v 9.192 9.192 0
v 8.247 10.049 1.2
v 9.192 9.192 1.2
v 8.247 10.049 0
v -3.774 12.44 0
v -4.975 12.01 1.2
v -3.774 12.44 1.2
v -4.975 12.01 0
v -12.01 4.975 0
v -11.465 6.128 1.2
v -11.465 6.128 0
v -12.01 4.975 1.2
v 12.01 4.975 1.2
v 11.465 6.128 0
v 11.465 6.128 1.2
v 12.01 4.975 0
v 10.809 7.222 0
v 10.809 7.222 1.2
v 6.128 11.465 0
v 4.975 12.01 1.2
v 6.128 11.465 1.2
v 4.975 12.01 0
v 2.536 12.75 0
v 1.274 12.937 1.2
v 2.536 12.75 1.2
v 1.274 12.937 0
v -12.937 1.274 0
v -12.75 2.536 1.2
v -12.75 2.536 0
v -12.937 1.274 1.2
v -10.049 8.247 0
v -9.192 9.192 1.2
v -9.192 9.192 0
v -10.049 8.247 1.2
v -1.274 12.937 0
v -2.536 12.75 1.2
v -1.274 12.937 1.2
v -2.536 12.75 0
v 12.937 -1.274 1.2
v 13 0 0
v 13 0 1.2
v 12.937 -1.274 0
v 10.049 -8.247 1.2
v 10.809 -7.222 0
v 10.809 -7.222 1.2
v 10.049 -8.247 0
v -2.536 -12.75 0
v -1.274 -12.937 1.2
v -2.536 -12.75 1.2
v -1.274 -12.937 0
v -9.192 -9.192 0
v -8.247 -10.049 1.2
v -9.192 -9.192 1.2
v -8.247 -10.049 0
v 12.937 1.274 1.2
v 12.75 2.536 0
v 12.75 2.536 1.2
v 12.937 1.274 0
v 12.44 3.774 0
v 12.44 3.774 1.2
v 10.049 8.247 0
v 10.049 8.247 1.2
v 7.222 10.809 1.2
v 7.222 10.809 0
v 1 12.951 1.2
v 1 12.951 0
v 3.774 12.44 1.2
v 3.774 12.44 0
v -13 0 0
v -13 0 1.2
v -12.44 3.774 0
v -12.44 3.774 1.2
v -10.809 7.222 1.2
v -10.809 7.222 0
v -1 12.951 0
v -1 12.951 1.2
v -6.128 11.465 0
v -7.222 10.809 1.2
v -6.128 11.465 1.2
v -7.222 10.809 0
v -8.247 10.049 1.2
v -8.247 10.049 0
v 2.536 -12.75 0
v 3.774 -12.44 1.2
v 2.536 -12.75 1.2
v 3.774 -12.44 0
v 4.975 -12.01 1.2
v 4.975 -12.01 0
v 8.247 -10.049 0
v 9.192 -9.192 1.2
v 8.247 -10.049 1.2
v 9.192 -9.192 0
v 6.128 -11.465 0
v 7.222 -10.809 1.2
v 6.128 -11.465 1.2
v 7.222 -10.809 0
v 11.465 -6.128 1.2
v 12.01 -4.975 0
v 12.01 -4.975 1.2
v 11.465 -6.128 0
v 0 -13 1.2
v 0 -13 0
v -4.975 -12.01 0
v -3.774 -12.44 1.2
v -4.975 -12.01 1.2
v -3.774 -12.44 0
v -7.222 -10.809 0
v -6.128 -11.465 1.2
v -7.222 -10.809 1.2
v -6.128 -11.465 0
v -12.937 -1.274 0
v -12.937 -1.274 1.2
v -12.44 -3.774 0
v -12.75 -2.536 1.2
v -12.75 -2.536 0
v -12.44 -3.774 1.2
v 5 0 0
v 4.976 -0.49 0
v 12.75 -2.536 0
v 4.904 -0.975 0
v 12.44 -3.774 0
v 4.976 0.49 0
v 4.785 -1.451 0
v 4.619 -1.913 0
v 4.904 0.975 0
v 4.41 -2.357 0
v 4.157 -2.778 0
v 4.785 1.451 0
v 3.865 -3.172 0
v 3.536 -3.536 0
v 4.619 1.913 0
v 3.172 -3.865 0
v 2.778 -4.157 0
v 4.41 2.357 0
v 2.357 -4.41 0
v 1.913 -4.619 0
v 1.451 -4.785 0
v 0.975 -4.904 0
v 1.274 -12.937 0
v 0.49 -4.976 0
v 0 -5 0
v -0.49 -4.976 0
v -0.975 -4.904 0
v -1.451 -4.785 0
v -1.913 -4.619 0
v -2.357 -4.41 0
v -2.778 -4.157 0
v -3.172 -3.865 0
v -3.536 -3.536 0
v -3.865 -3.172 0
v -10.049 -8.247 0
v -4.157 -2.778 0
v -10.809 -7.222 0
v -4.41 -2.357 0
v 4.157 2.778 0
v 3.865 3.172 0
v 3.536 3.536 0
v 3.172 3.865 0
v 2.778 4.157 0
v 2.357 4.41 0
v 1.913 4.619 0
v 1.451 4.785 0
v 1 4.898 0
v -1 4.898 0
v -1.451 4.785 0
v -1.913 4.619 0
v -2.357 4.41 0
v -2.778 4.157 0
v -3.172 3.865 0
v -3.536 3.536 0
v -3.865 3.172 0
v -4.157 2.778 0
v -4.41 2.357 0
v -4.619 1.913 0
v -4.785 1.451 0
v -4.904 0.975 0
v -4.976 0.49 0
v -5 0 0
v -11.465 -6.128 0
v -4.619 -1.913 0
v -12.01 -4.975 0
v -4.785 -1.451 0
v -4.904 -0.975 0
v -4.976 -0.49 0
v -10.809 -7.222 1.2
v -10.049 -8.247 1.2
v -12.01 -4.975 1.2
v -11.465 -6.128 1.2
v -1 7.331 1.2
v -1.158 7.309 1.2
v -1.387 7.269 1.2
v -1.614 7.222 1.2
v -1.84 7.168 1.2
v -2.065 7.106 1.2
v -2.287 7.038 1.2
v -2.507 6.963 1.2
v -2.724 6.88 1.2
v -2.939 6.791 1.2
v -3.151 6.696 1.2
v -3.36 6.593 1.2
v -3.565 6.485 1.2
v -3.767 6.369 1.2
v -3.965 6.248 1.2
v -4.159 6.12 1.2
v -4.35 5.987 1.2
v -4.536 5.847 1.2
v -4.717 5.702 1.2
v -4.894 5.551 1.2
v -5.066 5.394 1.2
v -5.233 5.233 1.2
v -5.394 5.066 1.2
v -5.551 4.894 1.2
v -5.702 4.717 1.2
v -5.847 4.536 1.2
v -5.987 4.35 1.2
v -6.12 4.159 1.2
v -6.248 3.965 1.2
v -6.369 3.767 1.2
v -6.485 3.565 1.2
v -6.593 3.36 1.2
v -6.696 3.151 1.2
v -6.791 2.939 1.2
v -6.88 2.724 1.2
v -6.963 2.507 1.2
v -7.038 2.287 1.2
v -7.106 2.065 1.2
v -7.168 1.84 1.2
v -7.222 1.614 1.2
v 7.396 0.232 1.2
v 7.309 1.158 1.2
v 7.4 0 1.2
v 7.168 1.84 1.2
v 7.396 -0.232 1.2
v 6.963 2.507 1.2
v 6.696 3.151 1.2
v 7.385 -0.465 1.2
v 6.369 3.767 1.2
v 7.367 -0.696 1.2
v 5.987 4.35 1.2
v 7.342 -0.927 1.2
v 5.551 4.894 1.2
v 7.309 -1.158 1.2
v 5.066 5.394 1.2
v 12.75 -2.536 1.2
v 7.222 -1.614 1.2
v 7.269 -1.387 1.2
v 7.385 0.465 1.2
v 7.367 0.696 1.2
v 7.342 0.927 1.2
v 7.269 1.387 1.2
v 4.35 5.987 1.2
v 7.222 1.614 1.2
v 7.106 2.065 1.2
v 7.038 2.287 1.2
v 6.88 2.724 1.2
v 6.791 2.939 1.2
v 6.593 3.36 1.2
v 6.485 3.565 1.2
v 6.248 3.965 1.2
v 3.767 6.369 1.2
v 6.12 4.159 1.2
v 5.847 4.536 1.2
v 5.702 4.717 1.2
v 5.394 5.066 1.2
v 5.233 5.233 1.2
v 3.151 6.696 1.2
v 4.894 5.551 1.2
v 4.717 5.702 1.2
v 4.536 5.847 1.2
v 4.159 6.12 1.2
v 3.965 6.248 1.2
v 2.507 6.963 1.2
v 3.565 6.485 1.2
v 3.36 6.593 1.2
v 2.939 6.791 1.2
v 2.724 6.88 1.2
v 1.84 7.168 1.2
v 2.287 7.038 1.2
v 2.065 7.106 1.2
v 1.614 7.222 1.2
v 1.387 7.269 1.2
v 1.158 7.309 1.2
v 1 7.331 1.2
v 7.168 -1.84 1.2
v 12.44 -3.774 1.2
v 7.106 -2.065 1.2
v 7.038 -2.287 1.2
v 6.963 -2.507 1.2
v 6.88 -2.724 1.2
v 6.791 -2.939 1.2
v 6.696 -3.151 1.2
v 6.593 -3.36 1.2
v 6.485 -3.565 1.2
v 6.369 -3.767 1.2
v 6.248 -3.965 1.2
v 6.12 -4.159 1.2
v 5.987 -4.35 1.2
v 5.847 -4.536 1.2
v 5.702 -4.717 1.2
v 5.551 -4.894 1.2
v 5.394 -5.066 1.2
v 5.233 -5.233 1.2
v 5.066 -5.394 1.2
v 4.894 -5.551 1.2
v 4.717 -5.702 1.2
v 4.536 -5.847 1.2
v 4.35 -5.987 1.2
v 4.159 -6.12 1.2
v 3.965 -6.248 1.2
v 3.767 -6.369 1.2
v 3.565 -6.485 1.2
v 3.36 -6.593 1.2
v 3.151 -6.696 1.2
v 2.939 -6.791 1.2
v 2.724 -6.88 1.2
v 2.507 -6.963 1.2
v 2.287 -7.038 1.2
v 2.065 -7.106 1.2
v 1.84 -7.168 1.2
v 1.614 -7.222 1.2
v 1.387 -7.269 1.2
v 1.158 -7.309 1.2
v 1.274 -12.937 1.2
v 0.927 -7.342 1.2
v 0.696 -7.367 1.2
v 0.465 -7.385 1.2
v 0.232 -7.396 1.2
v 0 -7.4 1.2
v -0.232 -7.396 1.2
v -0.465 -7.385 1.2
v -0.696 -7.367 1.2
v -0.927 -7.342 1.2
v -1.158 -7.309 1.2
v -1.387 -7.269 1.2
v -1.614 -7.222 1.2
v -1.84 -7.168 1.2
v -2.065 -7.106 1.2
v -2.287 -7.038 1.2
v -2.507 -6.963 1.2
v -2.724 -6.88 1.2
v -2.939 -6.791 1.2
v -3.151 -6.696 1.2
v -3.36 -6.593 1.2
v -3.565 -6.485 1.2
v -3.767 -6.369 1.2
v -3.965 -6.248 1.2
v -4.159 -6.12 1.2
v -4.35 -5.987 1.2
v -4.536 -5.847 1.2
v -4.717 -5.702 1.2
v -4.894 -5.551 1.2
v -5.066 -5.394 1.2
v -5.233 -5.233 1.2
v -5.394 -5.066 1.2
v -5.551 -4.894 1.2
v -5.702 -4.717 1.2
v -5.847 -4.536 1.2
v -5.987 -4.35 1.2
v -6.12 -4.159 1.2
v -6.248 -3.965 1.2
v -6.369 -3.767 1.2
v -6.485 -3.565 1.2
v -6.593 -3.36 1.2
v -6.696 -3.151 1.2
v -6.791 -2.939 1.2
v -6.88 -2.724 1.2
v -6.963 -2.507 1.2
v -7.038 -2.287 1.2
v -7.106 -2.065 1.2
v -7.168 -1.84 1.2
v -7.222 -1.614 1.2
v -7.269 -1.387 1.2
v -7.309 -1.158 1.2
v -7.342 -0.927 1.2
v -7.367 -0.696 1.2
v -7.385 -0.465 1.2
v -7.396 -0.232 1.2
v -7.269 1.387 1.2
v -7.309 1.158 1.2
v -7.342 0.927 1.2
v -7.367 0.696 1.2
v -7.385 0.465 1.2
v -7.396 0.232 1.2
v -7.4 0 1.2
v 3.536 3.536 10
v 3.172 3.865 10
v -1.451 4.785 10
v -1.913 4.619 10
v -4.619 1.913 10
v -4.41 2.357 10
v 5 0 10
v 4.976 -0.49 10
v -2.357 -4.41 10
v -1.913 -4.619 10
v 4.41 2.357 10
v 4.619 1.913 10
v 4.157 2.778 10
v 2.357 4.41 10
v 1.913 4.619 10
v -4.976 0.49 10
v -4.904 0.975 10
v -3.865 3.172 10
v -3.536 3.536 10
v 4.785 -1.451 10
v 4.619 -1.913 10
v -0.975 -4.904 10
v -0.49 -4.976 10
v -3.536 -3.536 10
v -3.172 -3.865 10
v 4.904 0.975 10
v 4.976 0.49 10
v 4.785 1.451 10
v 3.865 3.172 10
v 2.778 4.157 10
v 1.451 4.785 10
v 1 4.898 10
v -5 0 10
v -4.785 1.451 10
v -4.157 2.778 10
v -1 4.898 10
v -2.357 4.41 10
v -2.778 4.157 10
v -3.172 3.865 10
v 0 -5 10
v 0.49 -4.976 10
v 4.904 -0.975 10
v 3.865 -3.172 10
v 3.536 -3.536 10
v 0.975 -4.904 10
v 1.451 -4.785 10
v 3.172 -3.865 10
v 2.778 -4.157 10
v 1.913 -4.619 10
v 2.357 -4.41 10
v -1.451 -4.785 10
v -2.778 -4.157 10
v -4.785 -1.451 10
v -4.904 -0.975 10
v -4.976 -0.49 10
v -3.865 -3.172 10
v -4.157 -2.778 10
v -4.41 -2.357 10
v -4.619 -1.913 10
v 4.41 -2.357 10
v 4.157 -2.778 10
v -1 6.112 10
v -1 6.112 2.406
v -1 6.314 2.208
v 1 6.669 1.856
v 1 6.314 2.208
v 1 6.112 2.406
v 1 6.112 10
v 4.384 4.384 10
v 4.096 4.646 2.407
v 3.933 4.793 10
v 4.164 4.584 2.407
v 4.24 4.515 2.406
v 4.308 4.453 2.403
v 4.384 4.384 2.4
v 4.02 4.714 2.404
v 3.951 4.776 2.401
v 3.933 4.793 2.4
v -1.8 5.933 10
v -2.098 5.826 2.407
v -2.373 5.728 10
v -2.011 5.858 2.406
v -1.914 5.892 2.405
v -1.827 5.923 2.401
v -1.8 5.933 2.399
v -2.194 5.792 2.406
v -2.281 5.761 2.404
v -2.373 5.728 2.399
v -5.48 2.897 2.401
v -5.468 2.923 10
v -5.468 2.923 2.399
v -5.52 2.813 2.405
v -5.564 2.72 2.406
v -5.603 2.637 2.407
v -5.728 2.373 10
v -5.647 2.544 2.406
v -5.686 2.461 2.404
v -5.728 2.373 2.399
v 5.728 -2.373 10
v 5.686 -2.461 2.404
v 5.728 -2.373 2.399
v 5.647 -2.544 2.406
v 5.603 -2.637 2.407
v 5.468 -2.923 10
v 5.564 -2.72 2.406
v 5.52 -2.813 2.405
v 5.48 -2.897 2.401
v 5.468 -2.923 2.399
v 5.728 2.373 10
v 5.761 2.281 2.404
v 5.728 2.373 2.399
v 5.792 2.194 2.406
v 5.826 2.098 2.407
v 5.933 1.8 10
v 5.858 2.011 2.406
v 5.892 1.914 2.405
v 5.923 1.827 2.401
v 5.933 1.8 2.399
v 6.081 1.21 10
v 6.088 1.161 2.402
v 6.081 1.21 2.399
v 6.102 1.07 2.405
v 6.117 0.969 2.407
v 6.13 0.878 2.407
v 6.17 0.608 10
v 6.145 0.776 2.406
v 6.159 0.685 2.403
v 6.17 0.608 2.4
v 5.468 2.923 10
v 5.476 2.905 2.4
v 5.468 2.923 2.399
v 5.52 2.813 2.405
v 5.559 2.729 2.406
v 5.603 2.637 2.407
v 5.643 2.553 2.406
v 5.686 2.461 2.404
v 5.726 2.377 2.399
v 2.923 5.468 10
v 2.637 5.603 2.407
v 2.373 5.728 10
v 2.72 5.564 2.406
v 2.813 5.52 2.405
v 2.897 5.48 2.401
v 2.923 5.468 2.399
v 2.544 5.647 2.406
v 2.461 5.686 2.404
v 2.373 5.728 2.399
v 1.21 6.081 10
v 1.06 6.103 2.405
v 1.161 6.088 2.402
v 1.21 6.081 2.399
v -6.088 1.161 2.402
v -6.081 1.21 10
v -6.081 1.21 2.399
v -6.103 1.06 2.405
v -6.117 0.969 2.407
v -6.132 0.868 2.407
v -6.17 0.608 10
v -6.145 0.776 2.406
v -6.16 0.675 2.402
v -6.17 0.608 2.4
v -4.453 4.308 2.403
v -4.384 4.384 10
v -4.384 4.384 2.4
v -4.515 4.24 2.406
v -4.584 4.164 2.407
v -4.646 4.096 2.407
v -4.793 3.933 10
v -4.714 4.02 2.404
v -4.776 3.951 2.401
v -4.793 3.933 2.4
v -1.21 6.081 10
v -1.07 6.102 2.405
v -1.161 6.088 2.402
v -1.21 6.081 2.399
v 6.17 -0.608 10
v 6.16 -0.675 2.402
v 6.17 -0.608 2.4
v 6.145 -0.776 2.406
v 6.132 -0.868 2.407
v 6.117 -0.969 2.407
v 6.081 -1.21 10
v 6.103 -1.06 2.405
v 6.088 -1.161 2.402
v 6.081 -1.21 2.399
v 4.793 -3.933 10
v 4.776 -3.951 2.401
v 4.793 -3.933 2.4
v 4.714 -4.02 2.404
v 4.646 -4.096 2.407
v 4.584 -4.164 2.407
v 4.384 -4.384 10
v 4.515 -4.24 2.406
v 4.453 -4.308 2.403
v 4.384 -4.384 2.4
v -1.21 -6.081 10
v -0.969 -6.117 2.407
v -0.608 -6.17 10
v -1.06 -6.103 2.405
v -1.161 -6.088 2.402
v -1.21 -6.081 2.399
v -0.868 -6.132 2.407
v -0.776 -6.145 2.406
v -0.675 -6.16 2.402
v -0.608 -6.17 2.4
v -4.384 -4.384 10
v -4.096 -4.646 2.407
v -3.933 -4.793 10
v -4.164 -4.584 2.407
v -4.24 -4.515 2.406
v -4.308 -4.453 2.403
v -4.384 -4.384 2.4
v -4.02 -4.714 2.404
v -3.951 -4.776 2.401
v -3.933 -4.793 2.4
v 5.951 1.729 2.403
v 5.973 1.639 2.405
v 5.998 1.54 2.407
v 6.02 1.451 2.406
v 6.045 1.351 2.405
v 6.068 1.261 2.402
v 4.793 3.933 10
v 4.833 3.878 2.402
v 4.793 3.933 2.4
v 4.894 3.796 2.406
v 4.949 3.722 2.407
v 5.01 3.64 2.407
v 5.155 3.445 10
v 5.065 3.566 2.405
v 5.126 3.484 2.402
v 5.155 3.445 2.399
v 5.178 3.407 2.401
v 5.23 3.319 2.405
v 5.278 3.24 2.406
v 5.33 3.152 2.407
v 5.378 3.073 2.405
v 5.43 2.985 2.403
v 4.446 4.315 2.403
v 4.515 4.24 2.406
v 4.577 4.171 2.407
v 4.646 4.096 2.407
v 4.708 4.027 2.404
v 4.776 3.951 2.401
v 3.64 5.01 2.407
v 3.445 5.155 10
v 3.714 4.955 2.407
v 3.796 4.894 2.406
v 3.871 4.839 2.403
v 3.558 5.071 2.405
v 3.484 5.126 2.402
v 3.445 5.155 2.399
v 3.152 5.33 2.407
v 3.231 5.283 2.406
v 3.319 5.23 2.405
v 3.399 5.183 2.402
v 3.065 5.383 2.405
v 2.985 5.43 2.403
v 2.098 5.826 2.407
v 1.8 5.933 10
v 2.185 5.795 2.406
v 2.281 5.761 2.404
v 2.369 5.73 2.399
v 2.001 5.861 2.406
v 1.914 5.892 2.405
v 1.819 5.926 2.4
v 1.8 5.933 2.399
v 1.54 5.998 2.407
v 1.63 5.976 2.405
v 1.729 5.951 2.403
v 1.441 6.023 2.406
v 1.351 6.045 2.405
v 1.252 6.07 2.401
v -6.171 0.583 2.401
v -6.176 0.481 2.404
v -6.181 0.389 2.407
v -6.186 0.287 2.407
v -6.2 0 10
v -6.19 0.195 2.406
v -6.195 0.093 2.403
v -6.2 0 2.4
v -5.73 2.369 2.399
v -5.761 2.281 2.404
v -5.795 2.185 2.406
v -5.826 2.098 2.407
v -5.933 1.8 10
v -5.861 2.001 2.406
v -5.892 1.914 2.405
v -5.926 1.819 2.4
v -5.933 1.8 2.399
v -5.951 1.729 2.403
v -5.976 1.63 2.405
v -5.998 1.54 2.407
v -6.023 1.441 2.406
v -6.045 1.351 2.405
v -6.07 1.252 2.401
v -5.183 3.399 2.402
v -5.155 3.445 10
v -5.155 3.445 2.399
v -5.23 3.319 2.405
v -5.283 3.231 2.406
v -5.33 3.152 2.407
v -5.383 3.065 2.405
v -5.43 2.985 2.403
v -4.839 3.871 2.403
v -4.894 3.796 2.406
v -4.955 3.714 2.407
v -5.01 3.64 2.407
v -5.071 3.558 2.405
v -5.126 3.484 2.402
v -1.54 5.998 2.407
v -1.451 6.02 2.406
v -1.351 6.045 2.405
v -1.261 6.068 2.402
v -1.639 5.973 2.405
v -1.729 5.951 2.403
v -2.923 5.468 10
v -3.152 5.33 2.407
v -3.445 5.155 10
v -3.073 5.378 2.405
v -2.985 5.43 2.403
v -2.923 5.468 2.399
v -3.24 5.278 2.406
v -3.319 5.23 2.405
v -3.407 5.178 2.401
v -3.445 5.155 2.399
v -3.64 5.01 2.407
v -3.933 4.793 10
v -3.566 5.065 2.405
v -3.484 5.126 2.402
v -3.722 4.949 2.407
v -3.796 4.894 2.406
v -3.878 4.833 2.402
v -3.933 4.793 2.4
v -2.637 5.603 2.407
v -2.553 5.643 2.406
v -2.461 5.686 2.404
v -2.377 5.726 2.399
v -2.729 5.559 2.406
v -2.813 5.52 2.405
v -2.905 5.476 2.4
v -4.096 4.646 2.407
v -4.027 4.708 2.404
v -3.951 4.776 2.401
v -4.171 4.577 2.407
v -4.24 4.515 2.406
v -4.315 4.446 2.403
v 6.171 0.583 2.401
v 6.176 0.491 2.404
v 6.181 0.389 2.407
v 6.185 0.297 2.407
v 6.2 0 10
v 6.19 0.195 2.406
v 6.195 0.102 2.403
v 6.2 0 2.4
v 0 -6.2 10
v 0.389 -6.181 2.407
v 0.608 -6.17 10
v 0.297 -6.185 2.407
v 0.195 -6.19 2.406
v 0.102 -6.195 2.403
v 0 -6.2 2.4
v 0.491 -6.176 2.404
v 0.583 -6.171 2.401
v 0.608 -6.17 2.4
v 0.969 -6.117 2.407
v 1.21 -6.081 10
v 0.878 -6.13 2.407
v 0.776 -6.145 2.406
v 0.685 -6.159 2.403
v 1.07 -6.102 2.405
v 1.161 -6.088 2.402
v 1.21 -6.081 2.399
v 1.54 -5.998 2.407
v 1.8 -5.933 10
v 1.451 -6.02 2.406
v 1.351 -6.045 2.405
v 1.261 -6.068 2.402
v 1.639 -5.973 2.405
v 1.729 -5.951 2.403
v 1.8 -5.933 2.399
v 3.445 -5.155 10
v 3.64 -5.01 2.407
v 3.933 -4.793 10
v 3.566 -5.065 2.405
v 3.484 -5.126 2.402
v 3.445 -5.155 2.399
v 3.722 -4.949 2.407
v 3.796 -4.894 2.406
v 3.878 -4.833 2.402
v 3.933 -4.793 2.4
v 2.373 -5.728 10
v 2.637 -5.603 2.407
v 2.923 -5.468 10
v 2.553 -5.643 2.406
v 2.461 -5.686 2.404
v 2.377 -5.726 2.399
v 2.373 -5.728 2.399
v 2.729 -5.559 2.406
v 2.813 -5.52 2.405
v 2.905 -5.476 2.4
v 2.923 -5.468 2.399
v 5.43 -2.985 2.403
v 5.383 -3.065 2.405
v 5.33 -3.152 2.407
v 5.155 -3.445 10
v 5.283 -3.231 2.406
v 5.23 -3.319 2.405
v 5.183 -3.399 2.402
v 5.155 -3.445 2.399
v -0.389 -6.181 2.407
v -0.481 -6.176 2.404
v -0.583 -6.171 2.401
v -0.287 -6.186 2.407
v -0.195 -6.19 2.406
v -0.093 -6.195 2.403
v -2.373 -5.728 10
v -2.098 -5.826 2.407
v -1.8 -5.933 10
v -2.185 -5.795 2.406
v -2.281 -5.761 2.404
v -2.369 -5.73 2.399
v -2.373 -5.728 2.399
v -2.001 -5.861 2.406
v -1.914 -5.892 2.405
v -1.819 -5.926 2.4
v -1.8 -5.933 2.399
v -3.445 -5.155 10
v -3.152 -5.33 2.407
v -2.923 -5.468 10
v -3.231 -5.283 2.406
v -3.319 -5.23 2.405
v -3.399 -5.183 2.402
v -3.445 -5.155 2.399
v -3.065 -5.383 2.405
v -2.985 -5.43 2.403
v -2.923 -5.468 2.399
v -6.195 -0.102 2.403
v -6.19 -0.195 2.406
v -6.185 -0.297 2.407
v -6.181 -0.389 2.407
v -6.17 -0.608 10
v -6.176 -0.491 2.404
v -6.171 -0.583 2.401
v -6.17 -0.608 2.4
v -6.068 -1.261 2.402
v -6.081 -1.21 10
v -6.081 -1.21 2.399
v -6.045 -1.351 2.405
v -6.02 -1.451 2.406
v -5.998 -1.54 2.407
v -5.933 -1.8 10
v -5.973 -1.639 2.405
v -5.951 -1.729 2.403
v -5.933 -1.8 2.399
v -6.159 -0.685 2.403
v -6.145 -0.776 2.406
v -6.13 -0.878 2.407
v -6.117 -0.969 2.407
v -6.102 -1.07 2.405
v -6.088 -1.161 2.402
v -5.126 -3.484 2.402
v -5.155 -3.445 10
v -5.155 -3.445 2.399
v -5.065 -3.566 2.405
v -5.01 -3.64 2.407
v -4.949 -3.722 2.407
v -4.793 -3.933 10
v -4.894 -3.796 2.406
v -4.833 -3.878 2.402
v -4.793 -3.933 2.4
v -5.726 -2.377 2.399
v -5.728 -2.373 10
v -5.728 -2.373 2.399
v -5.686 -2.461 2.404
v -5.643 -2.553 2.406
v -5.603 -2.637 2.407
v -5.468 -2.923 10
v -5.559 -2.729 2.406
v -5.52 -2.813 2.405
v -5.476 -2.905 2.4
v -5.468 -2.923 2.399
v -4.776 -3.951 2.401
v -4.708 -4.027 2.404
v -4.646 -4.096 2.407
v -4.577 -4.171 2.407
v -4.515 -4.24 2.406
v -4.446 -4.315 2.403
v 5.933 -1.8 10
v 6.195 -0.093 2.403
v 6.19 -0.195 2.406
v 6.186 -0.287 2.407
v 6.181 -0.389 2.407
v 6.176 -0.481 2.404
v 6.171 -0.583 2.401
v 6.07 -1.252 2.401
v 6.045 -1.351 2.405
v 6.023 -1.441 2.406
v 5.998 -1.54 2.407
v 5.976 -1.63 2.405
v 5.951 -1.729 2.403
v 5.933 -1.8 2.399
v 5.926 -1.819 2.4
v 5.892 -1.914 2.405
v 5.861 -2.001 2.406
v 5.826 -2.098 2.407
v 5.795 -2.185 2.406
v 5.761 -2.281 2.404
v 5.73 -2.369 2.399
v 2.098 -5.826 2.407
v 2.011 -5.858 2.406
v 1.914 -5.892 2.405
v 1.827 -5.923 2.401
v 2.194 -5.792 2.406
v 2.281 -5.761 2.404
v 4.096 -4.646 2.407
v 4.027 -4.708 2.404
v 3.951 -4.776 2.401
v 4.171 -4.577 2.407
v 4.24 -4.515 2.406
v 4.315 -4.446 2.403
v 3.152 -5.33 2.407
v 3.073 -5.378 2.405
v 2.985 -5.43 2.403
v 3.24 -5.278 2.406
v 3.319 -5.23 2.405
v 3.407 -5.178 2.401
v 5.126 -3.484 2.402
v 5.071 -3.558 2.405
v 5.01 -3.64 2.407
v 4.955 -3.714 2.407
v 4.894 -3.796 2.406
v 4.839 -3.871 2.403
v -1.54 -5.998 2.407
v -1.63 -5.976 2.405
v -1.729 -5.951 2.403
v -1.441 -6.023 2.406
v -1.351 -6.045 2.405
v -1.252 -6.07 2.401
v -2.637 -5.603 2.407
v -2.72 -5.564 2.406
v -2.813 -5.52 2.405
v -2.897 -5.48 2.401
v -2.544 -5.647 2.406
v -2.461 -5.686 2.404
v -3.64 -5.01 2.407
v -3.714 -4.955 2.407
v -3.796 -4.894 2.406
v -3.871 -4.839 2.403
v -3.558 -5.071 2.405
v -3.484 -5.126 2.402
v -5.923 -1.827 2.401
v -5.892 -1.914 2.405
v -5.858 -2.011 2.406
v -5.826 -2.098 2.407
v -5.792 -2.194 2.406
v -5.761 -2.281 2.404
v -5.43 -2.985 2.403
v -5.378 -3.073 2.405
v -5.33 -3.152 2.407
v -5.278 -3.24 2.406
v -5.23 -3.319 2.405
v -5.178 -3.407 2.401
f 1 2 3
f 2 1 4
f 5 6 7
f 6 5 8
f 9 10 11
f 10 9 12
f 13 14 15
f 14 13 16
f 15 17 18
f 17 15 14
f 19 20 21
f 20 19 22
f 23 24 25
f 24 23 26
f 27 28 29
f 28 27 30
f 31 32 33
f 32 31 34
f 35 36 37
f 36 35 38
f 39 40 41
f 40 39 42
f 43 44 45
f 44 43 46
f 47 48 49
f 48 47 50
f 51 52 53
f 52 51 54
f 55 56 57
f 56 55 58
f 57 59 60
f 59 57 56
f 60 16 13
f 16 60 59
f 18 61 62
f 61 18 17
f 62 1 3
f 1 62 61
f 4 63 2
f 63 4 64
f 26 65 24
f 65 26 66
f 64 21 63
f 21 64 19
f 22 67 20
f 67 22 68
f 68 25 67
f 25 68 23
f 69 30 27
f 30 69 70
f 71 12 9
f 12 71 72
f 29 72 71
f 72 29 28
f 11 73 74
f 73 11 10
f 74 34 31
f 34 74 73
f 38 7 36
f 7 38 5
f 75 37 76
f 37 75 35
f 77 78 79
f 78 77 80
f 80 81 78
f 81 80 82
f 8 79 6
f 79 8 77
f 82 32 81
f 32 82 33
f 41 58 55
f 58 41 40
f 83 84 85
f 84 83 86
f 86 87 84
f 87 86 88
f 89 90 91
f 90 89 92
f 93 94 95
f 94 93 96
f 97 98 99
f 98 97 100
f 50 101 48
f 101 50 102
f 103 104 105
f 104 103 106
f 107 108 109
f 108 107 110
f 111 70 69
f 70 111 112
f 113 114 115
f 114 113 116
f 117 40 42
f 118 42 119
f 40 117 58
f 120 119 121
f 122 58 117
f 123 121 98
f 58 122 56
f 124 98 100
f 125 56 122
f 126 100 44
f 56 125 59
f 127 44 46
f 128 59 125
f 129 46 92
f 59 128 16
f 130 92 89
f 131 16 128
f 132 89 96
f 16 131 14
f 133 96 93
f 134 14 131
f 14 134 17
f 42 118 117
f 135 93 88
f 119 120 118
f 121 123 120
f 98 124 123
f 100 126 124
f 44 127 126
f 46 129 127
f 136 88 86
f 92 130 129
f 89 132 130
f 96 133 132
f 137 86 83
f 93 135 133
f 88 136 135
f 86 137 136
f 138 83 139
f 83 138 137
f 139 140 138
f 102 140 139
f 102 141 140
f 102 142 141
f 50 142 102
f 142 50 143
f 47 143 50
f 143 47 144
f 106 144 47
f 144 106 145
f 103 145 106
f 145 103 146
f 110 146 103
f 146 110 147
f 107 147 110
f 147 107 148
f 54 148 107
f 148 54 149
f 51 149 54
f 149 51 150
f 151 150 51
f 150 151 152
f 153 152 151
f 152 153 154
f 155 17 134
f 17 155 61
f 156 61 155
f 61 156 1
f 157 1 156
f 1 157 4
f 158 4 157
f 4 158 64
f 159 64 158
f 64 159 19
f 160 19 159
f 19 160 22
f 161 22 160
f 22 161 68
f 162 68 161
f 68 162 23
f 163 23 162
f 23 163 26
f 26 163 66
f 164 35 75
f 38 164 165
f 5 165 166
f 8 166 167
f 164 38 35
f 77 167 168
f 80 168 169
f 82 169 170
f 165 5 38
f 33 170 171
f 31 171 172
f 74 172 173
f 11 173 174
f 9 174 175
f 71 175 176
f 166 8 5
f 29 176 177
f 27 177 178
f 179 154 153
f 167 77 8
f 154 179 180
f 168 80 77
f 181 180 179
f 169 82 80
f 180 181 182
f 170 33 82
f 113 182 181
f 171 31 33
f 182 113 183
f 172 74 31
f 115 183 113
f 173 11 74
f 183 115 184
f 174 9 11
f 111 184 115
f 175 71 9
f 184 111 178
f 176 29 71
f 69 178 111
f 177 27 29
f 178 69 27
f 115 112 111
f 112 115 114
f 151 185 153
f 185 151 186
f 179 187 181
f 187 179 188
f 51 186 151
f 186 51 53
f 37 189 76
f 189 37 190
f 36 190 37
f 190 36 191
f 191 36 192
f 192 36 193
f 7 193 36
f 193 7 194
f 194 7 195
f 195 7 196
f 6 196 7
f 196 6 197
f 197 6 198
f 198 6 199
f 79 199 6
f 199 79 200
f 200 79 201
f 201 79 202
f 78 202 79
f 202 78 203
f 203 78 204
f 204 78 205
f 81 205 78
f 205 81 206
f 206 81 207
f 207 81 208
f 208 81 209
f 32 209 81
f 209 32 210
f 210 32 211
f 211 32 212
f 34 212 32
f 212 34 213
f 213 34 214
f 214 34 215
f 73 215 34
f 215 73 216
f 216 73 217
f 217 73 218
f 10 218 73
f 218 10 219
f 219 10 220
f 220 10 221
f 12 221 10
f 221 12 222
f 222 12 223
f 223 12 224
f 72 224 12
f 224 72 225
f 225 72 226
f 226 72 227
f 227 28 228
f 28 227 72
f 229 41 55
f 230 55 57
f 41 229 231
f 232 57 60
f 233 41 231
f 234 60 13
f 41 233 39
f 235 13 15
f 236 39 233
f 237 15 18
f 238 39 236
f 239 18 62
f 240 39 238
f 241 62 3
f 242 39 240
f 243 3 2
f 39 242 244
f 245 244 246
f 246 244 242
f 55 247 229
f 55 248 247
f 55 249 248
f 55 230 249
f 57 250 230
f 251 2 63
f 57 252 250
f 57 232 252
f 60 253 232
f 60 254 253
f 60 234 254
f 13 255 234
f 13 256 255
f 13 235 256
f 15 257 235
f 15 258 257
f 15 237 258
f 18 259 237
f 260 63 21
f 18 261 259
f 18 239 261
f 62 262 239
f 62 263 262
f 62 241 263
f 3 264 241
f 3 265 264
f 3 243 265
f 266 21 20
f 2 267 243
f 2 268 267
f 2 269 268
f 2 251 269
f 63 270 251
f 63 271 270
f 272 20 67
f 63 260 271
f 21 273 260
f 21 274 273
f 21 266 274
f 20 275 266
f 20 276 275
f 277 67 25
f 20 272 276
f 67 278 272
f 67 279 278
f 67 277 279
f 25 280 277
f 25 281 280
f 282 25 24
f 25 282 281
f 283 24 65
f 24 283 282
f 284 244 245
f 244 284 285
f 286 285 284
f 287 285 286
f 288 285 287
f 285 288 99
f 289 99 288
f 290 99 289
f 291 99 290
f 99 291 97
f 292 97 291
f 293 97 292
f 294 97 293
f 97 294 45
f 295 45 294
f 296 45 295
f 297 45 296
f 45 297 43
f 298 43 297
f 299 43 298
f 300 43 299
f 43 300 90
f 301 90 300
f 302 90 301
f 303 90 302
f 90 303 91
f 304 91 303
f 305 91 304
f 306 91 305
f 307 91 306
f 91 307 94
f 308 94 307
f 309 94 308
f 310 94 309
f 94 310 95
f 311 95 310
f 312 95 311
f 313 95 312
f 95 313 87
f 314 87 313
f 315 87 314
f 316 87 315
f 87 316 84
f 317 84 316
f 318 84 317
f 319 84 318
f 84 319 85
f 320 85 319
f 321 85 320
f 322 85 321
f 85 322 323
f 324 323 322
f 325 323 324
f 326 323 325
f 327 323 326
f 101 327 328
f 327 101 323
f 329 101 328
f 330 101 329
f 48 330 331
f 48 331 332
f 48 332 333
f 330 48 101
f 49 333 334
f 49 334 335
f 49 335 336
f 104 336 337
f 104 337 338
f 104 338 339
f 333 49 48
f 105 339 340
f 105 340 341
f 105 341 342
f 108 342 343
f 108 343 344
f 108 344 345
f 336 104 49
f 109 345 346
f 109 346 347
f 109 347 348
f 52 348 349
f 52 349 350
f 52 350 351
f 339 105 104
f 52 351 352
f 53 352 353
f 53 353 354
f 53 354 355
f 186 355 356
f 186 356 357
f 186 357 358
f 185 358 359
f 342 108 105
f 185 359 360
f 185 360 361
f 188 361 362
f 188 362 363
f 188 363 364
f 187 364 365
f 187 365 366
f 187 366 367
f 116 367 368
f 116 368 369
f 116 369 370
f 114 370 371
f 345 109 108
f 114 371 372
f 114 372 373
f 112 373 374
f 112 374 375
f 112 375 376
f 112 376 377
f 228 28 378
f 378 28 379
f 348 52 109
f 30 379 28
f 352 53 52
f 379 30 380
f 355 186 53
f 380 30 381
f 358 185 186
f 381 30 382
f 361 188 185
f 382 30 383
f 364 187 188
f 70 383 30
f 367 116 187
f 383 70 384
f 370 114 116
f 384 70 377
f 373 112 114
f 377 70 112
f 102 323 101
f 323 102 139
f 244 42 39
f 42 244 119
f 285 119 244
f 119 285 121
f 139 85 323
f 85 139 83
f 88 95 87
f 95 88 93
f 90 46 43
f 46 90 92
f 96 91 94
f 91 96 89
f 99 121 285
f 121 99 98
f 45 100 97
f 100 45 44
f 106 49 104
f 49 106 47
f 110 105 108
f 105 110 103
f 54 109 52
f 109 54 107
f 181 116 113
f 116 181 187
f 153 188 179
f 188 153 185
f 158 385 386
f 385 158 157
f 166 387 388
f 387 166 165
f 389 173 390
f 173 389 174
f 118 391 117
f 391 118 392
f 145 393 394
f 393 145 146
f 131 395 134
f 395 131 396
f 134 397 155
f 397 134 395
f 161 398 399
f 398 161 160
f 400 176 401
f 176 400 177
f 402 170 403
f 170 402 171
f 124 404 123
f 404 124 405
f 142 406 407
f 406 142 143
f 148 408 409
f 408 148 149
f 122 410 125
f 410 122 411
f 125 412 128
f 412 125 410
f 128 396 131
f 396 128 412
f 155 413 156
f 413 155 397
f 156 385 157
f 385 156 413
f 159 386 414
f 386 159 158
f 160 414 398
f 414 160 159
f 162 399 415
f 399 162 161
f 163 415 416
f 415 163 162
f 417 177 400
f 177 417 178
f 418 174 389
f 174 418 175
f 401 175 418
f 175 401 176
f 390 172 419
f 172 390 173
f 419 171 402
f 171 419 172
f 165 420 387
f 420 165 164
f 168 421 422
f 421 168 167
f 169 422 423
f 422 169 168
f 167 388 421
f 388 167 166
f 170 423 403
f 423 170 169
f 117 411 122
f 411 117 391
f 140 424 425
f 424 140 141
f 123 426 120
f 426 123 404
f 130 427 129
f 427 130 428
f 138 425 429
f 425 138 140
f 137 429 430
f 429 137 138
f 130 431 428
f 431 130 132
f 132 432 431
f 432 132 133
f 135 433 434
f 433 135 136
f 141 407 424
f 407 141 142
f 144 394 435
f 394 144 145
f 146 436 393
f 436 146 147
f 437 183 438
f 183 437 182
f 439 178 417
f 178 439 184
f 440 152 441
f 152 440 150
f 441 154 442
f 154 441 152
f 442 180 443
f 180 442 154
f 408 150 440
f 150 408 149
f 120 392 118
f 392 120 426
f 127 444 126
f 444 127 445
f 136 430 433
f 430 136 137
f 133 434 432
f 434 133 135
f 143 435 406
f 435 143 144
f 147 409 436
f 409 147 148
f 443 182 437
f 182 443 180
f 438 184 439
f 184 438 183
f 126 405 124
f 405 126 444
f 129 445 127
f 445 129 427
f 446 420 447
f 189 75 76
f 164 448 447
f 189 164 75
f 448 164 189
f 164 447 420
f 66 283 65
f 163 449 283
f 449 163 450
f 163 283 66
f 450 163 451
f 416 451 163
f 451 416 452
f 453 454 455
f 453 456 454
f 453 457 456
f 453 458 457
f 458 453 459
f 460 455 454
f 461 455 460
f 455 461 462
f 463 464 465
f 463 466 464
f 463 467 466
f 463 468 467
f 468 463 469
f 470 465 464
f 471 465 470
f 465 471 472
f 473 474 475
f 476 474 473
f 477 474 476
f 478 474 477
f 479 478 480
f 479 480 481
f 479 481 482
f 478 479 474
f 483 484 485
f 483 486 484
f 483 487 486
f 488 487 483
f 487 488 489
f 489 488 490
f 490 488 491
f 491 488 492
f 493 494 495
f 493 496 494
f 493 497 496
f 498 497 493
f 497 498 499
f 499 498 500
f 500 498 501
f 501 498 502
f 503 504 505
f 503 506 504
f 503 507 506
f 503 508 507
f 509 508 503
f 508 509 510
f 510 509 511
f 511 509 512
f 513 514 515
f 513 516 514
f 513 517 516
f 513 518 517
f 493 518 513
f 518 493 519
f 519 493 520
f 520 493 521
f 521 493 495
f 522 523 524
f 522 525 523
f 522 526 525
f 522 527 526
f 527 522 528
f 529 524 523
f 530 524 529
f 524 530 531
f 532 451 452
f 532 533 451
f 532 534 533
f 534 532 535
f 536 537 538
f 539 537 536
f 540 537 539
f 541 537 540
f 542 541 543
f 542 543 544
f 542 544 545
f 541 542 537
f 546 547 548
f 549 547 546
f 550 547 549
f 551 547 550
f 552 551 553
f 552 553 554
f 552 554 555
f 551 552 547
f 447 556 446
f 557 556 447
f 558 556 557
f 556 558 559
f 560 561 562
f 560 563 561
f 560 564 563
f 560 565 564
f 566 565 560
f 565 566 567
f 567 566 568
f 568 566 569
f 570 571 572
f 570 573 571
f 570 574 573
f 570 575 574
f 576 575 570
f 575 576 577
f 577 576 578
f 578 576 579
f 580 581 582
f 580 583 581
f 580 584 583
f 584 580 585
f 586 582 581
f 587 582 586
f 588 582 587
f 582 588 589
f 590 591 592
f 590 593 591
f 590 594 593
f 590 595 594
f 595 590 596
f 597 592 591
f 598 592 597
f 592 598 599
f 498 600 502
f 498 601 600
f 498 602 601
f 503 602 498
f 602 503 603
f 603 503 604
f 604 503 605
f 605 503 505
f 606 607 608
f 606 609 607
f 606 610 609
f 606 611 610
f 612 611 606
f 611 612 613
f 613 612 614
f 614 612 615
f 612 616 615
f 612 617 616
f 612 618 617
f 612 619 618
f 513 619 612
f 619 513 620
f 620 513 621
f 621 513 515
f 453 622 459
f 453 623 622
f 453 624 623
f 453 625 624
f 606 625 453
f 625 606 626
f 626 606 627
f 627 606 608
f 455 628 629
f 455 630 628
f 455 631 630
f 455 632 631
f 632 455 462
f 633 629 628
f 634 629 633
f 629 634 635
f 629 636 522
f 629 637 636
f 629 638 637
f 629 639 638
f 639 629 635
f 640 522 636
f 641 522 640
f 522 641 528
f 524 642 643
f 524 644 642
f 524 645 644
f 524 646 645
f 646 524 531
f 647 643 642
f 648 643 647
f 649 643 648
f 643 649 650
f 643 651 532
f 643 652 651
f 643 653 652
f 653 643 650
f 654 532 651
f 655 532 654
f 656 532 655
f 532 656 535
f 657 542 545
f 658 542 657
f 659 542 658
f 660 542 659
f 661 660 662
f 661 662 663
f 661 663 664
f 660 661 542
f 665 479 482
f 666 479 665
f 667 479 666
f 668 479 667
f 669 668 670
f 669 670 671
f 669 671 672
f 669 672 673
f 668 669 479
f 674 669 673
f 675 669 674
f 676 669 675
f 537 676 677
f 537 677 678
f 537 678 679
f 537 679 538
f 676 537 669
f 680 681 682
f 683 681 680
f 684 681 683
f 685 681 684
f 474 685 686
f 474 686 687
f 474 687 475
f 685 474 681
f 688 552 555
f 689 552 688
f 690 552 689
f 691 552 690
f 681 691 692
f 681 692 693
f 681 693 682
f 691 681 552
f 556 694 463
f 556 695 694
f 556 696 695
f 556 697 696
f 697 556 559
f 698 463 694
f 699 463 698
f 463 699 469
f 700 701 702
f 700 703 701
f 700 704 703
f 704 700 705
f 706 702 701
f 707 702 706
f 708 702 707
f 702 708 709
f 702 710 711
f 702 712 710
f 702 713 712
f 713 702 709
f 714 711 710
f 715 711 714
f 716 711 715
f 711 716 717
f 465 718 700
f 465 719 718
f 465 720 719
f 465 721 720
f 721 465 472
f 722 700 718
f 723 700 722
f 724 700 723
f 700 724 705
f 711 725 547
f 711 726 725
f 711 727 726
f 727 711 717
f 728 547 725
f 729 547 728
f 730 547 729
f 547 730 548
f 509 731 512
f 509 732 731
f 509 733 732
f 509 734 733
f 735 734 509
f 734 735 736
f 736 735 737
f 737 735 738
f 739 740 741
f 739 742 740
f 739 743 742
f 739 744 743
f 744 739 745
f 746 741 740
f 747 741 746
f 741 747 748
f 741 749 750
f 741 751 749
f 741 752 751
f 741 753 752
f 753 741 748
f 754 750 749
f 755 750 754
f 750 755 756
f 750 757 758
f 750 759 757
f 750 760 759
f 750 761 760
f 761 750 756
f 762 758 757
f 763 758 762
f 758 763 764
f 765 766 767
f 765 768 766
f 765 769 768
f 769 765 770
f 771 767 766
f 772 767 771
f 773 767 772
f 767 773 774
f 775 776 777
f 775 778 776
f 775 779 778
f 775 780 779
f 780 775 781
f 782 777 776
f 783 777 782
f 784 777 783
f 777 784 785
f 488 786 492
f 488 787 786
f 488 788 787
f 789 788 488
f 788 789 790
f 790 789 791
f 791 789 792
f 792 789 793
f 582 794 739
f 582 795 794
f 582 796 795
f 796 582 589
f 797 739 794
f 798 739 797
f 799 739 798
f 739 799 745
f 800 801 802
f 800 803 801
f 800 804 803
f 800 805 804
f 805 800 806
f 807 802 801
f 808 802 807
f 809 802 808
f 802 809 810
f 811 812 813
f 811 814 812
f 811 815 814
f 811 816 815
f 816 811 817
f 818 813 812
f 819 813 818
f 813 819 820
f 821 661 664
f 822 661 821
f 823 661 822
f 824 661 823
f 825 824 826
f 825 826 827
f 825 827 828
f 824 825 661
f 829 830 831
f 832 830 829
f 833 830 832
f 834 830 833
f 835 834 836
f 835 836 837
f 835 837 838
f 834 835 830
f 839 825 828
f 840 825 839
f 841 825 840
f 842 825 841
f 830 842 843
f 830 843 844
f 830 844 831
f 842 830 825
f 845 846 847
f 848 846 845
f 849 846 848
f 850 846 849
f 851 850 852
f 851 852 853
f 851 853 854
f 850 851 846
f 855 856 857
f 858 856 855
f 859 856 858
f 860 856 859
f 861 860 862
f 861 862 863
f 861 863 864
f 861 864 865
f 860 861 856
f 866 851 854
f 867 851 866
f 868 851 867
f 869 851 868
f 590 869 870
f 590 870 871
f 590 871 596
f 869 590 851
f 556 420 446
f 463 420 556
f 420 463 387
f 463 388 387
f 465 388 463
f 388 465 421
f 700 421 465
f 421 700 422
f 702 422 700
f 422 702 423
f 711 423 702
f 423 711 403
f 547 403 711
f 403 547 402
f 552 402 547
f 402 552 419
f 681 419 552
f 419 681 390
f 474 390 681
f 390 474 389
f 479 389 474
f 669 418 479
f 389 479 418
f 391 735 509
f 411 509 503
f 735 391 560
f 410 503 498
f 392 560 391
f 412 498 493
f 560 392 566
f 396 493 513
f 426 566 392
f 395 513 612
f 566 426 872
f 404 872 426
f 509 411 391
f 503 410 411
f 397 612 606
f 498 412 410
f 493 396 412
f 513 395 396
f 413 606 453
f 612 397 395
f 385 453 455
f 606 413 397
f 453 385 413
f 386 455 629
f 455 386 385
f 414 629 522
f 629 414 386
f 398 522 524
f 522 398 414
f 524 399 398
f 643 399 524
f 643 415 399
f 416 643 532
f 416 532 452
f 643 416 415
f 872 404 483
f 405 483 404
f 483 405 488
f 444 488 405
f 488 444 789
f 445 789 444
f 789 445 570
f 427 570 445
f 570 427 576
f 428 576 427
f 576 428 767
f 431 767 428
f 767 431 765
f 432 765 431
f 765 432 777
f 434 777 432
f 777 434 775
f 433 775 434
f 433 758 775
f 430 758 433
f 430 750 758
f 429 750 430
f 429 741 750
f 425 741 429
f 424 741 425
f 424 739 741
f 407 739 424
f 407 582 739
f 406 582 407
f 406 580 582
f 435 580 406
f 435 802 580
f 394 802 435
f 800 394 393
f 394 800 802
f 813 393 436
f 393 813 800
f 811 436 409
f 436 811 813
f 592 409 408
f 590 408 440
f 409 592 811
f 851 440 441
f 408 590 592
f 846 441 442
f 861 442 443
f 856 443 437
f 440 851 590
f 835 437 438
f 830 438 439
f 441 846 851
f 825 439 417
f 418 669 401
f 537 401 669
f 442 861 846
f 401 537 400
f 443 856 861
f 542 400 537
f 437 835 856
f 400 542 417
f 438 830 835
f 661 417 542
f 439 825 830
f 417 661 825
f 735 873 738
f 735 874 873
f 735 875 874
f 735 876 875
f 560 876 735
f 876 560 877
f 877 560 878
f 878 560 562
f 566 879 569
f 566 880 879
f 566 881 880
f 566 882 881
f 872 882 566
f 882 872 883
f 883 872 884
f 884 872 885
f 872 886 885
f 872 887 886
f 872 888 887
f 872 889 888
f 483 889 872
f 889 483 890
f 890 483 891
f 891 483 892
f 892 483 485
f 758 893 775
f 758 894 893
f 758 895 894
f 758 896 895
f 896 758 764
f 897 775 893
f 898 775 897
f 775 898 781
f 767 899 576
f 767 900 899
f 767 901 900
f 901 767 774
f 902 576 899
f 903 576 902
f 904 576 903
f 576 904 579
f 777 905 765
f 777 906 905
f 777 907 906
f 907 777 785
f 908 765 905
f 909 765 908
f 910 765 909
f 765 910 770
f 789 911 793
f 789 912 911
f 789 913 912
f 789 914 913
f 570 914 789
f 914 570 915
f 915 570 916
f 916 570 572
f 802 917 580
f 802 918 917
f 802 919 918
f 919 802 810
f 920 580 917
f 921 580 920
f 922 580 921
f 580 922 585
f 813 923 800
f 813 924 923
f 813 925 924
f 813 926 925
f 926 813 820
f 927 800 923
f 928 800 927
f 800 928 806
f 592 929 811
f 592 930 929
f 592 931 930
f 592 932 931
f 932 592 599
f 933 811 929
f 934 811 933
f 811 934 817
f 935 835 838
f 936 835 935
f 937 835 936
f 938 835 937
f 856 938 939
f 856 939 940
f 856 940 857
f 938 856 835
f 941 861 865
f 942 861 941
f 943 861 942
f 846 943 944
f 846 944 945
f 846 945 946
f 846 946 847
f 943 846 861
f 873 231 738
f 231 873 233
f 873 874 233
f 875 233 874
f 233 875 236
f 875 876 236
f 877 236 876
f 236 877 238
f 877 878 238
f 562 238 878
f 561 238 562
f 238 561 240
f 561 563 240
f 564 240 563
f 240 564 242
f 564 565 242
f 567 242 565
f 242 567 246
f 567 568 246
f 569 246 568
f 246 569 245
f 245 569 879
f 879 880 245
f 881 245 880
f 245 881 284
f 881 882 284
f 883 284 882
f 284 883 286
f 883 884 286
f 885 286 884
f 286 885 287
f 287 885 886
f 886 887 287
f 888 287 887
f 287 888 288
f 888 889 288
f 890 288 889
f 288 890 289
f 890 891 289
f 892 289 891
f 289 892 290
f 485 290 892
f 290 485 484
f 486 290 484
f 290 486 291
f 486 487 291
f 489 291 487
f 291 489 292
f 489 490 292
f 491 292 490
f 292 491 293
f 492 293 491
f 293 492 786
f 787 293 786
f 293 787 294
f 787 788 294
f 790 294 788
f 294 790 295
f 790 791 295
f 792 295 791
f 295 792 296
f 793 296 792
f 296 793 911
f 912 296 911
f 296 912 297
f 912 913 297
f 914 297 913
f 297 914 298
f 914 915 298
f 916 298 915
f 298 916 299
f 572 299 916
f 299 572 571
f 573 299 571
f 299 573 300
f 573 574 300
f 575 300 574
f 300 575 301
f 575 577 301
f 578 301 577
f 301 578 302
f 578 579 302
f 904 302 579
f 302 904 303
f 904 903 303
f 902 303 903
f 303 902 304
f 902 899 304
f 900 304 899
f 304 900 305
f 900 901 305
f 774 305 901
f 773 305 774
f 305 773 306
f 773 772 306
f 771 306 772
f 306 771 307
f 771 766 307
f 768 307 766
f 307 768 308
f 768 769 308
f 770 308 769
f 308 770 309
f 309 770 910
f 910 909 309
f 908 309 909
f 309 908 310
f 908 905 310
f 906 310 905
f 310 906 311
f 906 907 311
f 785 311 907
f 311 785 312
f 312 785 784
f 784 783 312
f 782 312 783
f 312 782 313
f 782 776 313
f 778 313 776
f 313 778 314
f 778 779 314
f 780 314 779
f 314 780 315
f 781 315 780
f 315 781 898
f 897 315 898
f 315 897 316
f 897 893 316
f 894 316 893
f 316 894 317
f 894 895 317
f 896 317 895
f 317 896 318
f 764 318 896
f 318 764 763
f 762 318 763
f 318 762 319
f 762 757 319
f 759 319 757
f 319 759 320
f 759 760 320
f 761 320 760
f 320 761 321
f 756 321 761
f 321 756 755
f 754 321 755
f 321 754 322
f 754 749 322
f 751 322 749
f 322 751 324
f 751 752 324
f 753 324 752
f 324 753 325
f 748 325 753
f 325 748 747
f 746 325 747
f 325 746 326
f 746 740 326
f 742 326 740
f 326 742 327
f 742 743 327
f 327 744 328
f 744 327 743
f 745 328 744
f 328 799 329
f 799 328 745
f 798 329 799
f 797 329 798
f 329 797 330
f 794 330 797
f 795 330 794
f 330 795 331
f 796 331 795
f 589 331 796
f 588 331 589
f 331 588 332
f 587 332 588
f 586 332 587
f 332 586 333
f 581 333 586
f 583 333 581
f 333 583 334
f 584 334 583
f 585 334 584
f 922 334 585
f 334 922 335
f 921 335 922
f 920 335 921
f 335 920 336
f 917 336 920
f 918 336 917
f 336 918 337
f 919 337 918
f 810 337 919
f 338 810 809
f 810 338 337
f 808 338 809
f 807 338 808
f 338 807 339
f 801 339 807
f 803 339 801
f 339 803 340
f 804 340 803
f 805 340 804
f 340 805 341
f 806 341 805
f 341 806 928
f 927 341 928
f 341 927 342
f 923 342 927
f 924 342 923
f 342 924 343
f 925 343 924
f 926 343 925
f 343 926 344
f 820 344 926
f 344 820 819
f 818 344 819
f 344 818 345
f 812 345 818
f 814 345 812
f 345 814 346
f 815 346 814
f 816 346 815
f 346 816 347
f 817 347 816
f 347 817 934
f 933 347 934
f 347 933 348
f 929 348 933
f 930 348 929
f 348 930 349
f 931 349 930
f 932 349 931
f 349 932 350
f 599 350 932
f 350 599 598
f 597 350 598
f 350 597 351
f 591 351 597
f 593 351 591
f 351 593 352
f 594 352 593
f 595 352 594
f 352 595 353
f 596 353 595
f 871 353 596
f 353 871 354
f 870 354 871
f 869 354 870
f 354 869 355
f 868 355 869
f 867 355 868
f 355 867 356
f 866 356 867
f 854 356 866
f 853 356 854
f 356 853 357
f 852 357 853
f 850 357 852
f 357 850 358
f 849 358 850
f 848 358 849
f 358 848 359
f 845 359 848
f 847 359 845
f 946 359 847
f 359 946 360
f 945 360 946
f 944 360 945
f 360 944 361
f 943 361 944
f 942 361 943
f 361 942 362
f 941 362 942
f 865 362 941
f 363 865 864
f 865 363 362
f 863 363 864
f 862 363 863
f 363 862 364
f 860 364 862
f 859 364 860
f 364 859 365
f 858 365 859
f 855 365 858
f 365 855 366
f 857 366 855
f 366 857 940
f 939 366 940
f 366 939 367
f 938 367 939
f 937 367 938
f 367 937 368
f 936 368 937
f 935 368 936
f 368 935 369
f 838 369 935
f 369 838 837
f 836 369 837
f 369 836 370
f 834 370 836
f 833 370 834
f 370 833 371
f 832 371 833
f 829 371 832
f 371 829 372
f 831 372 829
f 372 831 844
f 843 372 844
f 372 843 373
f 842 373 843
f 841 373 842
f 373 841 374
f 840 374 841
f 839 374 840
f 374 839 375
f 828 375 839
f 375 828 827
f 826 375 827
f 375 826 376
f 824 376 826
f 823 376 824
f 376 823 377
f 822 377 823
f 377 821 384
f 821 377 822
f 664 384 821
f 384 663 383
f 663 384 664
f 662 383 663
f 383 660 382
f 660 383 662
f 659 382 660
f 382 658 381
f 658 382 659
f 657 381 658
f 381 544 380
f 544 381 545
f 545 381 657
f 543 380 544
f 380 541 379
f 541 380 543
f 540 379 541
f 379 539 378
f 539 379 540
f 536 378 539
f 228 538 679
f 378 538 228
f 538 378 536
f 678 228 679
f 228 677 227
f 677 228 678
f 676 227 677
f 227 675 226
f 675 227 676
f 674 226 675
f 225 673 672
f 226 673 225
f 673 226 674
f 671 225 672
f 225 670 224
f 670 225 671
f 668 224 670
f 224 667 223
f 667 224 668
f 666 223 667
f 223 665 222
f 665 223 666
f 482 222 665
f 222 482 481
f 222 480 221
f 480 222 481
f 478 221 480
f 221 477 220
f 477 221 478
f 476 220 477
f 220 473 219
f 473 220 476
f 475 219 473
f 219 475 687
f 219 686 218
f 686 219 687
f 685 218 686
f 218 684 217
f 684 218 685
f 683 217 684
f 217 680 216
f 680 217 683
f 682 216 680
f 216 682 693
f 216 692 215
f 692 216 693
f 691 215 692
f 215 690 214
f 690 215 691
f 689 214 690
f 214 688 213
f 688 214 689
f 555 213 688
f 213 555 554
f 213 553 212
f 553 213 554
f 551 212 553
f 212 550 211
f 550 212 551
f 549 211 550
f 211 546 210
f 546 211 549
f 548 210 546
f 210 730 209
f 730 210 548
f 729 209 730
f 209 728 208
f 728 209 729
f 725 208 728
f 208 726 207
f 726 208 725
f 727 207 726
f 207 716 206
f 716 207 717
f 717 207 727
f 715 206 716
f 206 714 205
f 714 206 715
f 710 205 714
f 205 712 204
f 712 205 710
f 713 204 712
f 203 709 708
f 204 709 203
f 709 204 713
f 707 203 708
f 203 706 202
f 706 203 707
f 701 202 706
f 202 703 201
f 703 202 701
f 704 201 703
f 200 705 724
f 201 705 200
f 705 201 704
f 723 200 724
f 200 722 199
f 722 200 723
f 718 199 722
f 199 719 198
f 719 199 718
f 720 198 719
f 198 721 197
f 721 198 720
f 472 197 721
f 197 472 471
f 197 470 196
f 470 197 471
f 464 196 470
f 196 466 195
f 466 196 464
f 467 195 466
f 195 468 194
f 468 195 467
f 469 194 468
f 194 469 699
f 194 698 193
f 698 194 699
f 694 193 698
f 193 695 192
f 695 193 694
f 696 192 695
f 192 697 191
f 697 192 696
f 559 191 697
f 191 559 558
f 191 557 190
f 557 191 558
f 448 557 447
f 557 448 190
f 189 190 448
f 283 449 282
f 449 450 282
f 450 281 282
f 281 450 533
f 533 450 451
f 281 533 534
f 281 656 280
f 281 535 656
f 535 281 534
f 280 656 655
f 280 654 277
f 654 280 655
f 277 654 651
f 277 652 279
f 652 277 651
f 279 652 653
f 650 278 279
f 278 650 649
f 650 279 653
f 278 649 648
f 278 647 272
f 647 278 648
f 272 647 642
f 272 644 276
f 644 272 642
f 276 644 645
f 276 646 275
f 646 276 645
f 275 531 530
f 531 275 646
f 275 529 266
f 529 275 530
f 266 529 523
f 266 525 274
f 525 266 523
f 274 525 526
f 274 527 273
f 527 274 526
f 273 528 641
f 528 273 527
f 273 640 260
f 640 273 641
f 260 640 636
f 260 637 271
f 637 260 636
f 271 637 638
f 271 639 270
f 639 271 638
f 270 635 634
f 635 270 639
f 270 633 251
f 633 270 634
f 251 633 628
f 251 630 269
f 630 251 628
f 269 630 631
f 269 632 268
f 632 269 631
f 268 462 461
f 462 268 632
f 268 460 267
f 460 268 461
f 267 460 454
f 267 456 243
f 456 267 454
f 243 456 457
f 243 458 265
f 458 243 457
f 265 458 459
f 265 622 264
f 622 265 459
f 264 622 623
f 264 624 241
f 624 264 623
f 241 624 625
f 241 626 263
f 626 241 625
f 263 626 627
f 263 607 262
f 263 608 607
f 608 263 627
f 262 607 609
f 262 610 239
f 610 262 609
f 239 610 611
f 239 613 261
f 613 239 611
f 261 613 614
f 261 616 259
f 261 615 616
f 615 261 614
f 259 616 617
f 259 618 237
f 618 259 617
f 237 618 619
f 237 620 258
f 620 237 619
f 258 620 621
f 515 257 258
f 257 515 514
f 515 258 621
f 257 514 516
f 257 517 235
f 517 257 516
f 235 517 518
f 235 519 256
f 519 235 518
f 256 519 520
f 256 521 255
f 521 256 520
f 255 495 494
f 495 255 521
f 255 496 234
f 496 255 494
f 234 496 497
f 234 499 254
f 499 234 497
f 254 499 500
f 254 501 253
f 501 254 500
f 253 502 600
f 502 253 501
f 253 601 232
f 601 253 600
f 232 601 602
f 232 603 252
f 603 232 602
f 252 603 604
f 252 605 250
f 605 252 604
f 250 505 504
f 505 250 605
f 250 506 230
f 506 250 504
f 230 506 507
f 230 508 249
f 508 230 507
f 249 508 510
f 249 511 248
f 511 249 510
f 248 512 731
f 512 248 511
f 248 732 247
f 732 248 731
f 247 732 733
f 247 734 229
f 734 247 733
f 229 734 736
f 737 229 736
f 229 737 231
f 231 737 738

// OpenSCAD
// pen holder for plotting robot

$fn = 64;

// holder variables
penDiameter = 10; // 12.5mm works with Sharpie Fine
                  // 11.75 for Visa-vis
                  // 10 mm for Crayola Washables
penRadius = penDiameter / 2;
barrelHieght = 10;
barrelWallThickness = 3;
baseThickness = 3;
cornerRounding = 2;

hat_thickness = 1.2;

hatDiameter = 26;
slice = 2;


module penHolder(){

	difference(){
		//// lip
        cylinder(hat_thickness, hatDiameter / 2, hatDiameter / 2);
        
        // pen hole
        cylinder(baseThickness, penRadius, penRadius);
        

        // expansion slice
        translate([ -slice / 2, 0, 0])
        cube([  slice, hatDiameter, barrelHieght]); 
	}

	// pen barrel
	difference(){
        // barrel

        barrel();

		// bore
		cylinder(   barrelHieght * 2, penRadius, penRadius);

        
        // expansion slice
        translate([ -slice / 2, 0, 0])
        cube([  slice, hatDiameter * 2, hatDiameter * 2]);   
	};  
}

module barrel()
        union(){{
		cylinder(	barrelHieght, 
					penRadius + hat_thickness, 
					penRadius + hat_thickness);


        rotate_extrude($fn=200)
        //rotate([90, 0, 0])
        translate([-penRadius - 2 * hat_thickness, hat_thickness, 0])
        polygon(points=[[2,2], [2,0], [0,0]]);
        }
    }
//barrel();
penHolder();
